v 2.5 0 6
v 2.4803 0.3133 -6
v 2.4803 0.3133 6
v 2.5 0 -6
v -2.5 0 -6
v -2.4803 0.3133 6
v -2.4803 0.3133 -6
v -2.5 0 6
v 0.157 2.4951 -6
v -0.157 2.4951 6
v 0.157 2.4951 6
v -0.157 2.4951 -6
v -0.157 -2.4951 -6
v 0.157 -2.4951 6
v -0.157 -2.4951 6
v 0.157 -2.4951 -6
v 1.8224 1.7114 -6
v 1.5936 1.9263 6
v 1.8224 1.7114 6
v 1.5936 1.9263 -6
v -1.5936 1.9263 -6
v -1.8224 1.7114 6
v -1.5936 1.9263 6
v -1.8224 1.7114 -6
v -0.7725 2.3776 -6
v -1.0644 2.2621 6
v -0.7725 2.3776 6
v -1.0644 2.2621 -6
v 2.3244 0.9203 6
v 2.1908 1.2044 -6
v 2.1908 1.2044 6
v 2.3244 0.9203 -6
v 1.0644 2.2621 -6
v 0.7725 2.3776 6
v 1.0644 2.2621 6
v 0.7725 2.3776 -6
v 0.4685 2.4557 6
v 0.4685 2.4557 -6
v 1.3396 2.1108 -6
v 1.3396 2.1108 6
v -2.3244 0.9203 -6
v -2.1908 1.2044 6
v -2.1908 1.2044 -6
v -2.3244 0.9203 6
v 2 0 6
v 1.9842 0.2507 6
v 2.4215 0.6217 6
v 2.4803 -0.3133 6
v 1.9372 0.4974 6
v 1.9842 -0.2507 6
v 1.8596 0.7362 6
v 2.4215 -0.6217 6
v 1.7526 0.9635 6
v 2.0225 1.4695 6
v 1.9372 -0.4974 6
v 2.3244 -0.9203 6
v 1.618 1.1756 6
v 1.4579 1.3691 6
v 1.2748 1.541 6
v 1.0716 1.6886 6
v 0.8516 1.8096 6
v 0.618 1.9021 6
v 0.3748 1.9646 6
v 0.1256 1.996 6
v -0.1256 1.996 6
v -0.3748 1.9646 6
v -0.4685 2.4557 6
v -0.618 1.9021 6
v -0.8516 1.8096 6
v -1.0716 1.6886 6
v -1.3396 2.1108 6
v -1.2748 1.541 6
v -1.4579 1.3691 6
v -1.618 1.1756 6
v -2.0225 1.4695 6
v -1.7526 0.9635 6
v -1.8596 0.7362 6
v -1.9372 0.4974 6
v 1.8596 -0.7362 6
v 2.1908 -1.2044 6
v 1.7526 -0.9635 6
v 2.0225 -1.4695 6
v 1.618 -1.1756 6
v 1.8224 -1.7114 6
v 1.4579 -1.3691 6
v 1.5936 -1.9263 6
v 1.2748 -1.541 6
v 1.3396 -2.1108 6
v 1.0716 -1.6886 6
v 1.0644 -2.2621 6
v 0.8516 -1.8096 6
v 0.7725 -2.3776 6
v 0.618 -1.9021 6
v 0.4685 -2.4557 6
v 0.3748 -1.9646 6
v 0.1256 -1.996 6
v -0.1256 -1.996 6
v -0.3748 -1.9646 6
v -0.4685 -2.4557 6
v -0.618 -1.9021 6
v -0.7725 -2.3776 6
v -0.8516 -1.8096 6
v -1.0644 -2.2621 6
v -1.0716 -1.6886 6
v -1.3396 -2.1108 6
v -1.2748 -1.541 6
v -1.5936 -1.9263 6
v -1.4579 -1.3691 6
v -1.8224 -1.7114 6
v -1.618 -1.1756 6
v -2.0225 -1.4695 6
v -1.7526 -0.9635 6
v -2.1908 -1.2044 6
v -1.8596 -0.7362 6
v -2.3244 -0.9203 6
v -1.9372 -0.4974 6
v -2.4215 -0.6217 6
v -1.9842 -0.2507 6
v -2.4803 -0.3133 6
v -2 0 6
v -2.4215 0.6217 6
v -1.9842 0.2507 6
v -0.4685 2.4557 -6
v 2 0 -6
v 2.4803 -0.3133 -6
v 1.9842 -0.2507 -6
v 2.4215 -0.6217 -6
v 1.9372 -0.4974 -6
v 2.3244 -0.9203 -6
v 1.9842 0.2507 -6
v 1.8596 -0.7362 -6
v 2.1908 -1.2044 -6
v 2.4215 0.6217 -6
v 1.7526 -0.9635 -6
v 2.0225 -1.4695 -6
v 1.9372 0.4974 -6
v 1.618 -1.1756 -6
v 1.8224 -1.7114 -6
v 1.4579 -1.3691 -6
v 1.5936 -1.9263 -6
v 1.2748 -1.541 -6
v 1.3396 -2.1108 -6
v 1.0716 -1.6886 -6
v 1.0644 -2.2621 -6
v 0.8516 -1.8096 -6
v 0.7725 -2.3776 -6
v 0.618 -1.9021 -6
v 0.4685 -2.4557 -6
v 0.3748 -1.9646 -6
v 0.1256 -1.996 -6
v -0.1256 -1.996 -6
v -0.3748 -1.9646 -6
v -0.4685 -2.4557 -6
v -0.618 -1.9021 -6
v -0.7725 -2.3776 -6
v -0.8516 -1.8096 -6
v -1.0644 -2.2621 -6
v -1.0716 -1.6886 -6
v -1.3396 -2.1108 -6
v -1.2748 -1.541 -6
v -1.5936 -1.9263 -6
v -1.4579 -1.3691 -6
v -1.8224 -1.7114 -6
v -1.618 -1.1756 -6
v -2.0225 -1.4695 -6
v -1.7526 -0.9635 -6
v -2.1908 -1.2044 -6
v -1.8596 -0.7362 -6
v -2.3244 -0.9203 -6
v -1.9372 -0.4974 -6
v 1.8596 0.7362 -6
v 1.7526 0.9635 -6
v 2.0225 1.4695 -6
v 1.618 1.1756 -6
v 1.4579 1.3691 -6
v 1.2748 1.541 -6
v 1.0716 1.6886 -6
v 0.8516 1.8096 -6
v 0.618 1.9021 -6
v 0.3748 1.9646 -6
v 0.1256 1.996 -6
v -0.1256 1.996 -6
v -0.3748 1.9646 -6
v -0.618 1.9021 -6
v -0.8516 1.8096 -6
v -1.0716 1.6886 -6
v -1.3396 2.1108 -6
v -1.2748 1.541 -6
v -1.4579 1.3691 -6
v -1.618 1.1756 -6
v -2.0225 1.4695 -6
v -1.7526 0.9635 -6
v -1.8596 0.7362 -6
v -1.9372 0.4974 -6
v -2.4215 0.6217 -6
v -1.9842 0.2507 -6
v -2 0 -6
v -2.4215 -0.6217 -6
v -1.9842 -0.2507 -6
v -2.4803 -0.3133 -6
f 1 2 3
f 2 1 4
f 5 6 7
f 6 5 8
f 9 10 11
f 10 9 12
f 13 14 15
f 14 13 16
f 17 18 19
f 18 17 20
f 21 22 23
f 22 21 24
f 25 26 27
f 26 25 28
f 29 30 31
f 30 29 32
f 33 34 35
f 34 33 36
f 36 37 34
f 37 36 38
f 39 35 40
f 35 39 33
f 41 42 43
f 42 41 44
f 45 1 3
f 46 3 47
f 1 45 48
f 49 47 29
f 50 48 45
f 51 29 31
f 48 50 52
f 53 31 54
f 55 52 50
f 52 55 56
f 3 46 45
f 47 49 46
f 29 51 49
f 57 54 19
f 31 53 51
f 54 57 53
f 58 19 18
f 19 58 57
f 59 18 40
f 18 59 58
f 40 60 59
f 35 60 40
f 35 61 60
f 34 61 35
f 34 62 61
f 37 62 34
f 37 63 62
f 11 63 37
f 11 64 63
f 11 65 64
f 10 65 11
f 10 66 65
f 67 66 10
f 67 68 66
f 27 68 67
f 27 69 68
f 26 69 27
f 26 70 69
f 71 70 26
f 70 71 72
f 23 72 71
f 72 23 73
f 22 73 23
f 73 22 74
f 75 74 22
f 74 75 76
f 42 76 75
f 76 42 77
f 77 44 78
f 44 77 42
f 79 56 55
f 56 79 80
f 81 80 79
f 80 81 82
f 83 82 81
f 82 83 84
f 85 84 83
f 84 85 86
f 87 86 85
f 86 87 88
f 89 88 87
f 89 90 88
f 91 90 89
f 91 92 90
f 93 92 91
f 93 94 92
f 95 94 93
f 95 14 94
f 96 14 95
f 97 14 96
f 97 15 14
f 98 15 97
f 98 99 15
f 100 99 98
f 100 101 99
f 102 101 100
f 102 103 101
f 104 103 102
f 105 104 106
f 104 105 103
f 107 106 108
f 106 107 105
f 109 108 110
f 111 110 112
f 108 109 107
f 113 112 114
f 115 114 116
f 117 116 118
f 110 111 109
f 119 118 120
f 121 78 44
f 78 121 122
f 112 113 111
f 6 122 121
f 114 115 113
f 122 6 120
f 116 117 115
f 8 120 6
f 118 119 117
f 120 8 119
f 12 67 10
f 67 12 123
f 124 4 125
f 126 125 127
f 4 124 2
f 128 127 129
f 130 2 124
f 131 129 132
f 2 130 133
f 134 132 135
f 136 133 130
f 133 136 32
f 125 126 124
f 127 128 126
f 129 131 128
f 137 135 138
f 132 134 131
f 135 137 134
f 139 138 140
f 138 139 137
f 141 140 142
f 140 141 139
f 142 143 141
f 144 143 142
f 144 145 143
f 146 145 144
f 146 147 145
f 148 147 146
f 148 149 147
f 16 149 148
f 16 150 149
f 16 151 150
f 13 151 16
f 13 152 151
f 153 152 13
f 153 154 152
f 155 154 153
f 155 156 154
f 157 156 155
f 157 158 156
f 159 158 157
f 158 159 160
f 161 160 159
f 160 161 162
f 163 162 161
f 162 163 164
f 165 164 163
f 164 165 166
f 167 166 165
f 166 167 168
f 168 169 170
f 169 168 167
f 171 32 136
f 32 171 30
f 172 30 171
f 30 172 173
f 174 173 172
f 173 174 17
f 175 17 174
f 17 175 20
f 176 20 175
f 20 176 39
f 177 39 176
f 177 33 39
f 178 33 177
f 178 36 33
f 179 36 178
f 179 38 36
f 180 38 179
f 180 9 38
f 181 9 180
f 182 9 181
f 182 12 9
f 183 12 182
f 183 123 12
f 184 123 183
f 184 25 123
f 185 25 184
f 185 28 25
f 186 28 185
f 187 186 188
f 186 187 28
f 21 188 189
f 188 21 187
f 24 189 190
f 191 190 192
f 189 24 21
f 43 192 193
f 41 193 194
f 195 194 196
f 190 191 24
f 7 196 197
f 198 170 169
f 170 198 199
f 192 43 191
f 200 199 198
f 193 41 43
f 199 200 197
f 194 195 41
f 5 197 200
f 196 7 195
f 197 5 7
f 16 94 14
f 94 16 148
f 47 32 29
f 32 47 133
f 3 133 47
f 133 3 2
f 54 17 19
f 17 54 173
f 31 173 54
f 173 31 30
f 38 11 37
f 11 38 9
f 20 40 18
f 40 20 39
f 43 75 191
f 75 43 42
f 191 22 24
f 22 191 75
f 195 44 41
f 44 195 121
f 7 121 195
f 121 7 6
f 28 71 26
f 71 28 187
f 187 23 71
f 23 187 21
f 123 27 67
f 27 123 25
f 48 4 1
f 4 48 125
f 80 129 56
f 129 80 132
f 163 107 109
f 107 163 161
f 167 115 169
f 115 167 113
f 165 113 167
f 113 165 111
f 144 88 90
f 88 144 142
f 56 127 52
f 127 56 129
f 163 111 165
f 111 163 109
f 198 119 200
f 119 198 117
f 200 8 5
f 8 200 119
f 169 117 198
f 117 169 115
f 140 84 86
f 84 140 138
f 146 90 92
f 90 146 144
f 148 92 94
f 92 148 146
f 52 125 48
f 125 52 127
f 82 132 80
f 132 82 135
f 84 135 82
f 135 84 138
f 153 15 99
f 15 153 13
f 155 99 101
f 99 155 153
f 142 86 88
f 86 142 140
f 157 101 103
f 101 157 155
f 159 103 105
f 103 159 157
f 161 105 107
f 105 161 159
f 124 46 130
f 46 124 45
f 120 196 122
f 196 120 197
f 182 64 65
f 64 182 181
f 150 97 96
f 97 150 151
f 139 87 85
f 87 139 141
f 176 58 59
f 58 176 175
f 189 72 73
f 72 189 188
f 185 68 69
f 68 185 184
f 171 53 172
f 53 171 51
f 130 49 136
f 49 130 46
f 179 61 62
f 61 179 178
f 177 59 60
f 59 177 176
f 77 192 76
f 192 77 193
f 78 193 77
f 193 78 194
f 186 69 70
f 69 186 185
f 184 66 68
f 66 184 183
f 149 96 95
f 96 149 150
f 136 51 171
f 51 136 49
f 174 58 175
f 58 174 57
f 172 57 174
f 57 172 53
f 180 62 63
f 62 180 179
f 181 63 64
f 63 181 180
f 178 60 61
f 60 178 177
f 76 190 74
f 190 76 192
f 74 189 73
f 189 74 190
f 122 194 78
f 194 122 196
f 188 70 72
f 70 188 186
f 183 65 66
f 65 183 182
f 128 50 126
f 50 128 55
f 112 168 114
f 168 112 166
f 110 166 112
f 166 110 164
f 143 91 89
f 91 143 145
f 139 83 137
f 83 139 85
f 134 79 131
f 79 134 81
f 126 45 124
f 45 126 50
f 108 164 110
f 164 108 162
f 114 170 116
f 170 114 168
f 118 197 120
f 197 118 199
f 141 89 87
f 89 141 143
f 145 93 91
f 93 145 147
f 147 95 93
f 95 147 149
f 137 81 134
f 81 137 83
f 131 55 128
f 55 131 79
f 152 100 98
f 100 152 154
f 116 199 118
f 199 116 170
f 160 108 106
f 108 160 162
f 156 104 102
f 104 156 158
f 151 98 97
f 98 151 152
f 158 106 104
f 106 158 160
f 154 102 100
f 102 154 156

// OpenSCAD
$fn = 50;


difference() {
	union() {
		translate(v = [0, 0, -6.0000000000]) {
			cylinder(h = 12, r = 2.5000000000);
		}
	}
	union() {
		translate(v = [0, 0, -100.0000000000]) {
			cylinder(h = 200, r = 2.0000000000);
		}
	}
}
